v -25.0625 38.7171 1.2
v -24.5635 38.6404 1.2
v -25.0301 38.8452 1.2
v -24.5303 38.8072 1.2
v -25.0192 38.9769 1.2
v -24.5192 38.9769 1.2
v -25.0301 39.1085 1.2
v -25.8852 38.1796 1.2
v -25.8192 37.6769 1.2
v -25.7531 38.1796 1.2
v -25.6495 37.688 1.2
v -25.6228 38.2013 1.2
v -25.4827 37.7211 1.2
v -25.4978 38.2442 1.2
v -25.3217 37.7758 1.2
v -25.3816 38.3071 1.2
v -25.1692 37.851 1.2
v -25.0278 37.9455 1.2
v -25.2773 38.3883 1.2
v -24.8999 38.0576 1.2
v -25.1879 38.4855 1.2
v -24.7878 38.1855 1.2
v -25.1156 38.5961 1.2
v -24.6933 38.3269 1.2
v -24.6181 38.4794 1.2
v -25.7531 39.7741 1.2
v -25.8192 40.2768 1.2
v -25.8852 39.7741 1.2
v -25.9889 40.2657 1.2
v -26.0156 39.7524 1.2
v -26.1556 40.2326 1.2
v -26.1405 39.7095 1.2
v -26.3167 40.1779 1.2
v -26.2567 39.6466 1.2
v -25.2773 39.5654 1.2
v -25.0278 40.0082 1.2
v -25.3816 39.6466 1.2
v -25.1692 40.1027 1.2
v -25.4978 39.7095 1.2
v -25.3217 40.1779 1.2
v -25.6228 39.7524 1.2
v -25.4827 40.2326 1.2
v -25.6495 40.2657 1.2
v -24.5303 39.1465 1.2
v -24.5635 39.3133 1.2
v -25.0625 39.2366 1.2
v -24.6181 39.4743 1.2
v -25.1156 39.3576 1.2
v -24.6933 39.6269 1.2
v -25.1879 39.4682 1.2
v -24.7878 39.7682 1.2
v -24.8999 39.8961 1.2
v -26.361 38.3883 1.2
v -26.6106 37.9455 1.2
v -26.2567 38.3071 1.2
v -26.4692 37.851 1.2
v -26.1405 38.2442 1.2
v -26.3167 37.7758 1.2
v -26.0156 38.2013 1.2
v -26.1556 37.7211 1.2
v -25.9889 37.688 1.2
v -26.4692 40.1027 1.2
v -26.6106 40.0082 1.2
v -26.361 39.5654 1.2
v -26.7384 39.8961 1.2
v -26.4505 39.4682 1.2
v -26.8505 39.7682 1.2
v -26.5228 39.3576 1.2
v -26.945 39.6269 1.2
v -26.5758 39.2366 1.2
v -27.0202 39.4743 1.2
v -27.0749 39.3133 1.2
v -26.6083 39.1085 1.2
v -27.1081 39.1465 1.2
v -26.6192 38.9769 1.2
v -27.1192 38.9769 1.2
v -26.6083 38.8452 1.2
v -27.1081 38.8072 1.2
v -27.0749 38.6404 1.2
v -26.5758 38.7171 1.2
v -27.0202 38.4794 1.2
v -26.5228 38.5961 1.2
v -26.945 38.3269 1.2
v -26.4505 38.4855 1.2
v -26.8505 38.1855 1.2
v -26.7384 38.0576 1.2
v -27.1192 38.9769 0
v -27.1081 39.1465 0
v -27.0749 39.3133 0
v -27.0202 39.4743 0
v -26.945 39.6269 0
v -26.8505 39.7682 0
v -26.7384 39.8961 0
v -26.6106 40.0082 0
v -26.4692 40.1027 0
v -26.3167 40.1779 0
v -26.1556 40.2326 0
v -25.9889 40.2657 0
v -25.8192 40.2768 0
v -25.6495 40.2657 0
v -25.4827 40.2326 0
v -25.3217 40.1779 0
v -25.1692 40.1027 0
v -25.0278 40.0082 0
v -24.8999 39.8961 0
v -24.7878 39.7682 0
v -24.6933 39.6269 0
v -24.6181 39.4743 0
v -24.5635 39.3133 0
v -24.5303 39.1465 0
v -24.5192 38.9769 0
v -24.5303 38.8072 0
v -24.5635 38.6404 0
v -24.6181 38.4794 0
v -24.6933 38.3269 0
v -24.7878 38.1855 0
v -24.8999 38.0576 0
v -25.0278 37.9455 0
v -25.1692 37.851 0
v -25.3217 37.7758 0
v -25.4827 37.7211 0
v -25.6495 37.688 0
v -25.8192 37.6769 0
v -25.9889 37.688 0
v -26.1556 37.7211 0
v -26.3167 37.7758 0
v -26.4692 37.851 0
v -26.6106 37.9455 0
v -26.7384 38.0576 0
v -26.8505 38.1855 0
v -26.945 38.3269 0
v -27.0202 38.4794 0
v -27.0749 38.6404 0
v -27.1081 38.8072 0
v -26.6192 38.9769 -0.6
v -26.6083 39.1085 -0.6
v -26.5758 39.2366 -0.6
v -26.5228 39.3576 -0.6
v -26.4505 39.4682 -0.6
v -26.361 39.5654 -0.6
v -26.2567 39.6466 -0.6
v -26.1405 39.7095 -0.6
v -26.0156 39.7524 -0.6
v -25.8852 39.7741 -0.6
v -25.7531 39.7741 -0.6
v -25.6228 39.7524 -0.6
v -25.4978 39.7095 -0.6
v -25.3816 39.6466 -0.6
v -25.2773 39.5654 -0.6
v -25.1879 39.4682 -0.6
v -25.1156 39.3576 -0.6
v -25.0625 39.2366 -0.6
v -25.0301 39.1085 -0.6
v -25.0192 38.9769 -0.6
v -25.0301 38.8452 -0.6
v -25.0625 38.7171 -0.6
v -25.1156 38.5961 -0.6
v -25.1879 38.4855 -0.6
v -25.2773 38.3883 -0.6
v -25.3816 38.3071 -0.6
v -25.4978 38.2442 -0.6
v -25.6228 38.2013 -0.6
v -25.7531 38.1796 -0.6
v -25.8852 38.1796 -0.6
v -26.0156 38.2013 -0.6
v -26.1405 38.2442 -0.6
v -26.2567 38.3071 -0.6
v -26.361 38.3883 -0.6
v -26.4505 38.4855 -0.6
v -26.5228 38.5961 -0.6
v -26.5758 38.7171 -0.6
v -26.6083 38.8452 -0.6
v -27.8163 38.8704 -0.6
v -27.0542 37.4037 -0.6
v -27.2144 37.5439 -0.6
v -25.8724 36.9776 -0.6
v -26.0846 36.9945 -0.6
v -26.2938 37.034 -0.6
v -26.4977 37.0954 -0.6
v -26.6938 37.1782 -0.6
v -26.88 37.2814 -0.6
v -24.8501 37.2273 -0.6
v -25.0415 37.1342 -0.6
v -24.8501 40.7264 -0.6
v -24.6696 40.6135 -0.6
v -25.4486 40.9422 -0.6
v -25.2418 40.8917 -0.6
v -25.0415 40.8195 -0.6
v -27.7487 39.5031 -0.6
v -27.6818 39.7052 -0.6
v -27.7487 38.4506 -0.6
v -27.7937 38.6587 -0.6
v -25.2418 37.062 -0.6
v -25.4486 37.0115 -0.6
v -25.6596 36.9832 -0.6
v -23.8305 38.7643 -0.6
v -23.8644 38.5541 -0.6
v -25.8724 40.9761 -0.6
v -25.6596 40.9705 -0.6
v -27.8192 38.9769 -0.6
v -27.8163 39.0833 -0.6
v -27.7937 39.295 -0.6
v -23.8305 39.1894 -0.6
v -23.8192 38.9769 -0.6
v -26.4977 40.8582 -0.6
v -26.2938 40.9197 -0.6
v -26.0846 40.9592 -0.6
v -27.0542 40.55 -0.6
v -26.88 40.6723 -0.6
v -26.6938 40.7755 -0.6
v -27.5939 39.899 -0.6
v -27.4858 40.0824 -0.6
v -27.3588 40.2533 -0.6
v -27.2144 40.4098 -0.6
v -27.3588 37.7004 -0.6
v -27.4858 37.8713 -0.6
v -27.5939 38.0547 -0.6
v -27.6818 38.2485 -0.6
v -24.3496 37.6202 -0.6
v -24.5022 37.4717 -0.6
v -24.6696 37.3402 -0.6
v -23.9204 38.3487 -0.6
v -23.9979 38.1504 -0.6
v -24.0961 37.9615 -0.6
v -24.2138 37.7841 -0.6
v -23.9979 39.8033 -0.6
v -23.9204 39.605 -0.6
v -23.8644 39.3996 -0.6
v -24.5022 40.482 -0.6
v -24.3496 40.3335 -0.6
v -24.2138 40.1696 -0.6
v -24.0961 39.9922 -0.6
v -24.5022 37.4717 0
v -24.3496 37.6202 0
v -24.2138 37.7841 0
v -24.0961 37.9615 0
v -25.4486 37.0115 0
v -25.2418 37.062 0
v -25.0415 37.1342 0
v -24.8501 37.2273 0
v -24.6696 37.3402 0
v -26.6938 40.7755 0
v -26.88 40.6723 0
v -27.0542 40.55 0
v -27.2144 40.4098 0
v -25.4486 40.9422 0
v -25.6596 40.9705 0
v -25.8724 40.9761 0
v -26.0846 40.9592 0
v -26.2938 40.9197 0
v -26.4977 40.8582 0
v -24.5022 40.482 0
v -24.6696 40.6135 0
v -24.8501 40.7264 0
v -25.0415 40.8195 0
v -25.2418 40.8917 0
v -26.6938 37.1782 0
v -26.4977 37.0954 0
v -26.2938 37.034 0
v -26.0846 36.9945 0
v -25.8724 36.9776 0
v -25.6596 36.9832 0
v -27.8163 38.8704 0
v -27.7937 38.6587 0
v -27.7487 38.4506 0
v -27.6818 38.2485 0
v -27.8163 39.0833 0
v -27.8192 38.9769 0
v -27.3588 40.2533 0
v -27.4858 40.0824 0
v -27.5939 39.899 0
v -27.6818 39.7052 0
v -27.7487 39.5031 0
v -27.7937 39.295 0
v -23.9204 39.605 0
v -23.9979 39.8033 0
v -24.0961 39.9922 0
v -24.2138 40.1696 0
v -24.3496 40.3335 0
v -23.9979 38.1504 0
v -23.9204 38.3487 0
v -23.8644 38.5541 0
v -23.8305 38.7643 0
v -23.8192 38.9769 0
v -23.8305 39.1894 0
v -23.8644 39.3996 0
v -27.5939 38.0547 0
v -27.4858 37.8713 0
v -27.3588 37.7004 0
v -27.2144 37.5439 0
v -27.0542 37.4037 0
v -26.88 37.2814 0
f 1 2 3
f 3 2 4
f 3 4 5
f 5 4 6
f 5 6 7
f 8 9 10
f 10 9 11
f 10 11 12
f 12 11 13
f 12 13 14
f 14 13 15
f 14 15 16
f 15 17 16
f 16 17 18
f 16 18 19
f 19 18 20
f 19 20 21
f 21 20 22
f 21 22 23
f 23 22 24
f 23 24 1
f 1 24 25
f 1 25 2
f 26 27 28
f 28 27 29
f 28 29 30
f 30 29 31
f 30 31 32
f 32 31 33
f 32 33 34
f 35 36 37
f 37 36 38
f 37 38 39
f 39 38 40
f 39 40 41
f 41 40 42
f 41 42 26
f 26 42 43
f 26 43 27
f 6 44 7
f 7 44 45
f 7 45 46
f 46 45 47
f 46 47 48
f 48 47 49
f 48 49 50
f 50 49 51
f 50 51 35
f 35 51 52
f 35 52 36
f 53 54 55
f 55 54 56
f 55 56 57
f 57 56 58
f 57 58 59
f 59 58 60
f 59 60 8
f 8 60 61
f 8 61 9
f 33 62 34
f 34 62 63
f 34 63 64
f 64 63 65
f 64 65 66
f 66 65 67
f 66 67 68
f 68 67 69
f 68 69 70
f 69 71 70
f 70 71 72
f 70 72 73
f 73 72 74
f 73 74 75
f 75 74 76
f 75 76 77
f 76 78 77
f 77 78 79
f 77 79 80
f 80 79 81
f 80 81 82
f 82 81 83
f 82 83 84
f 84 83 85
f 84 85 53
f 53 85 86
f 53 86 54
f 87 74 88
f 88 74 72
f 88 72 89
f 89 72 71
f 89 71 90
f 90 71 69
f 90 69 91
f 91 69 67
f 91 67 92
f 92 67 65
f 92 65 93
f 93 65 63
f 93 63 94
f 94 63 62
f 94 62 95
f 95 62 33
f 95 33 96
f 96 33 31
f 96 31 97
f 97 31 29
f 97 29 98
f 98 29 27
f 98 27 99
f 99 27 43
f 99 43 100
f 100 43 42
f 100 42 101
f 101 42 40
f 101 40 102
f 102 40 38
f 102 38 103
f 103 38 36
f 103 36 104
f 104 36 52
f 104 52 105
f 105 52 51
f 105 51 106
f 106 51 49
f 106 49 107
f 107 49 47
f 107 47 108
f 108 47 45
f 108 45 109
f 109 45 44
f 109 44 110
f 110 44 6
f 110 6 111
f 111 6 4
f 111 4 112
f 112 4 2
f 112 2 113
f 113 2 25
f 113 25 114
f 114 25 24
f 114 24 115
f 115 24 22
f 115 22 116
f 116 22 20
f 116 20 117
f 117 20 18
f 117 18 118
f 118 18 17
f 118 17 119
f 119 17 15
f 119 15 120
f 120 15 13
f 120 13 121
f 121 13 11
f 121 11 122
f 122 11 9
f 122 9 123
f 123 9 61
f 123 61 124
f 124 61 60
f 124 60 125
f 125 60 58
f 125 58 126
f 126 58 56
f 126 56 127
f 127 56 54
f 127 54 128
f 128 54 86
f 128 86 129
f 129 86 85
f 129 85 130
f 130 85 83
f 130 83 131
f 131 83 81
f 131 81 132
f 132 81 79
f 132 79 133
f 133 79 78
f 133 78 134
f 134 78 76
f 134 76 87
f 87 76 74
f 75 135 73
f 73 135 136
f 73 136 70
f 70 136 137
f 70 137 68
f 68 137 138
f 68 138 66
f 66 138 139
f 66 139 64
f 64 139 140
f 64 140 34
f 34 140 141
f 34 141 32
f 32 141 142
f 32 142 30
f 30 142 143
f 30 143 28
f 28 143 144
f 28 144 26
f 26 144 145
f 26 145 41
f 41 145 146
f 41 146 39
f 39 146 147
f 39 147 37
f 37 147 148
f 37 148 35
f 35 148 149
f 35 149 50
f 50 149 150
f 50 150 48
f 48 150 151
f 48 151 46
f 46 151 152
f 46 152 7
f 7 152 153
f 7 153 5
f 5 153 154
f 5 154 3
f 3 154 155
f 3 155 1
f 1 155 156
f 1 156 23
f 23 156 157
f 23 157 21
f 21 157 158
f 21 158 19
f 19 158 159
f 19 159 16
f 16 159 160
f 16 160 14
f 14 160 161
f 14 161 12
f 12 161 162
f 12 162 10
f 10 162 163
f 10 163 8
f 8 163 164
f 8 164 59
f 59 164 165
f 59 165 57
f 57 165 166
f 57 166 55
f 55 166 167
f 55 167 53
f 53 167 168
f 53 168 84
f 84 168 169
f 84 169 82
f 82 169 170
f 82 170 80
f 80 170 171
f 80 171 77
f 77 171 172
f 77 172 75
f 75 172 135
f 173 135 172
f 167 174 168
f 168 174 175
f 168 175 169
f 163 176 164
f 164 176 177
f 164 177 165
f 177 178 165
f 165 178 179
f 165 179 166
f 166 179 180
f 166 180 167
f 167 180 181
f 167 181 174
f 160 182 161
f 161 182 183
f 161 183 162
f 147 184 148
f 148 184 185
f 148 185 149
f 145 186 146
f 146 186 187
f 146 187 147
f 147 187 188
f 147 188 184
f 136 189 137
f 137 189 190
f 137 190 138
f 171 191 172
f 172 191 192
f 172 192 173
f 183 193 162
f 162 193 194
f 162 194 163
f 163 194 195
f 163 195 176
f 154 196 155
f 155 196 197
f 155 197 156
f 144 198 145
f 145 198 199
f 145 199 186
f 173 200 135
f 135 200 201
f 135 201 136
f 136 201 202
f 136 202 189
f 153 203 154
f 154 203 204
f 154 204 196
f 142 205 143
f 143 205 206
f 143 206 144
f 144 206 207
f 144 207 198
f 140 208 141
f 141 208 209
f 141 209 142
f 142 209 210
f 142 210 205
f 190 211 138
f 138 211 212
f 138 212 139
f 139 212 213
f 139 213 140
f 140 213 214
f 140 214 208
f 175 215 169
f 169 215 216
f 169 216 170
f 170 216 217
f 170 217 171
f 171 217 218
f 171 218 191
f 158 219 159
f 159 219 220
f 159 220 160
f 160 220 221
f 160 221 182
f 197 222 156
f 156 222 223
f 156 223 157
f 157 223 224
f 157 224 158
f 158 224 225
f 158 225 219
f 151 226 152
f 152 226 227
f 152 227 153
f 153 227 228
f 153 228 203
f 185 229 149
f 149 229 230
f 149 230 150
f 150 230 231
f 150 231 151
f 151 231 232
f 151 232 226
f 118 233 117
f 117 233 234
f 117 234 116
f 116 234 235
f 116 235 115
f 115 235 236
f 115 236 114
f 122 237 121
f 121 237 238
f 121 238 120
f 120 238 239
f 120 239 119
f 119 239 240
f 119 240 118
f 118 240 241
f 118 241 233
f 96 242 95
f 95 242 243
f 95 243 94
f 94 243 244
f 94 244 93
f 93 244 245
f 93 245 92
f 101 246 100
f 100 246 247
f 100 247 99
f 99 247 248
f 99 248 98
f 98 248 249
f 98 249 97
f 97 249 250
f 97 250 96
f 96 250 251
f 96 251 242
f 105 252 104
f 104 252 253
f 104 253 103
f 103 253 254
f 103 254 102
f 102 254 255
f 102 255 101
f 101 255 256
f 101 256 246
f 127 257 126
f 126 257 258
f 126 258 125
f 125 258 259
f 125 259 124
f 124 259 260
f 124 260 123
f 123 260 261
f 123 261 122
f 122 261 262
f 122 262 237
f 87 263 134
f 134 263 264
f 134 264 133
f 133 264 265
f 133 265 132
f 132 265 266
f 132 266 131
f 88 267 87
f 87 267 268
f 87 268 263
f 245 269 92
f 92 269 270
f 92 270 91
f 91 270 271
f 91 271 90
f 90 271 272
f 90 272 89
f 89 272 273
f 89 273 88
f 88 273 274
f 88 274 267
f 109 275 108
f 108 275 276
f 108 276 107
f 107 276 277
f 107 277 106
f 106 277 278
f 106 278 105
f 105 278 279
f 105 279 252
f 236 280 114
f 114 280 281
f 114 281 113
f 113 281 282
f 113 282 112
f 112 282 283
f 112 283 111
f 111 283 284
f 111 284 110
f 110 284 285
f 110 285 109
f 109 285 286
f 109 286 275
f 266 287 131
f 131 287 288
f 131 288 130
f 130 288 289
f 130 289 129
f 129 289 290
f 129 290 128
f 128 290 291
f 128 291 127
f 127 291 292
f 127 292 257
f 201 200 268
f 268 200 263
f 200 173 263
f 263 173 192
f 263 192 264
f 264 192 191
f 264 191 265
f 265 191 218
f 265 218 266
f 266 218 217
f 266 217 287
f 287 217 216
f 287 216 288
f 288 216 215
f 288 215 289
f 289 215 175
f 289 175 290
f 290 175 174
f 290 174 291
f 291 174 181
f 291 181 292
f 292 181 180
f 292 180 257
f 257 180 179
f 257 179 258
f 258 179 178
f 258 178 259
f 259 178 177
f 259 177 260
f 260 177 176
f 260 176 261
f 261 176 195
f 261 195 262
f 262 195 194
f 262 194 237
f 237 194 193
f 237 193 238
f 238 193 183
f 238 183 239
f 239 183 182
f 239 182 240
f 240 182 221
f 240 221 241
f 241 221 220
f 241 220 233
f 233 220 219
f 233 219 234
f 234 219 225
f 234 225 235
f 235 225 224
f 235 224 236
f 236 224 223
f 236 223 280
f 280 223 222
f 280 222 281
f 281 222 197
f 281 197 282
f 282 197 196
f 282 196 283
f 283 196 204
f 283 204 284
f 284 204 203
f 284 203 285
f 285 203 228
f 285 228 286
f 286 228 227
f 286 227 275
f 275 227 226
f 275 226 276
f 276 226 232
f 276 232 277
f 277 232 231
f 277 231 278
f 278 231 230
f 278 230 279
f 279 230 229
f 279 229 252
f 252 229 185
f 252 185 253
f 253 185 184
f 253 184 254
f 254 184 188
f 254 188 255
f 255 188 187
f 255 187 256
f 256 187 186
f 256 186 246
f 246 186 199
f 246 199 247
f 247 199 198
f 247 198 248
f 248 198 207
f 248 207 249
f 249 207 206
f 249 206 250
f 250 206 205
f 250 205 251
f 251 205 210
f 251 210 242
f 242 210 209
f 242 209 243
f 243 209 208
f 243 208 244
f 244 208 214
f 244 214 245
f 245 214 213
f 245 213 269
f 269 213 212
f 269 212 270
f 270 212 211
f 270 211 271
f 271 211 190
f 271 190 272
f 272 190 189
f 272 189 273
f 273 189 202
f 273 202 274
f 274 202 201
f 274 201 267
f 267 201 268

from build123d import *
from build123d.topology import SkipClean

# Parameters (mm, degrees)
SKETCH1_R           = 1.3
SKETCH1_R_2         = 0.8
BOSS_EXTRUDE1_DEPTH = 1.2
BOSS_EXTRUDE2_START = 0.6
SKETCH2_R           = 2
SKETCH2_R_2         = 0.8
BOSS_EXTRUDE2_DEPTH = 0.6


with BuildPart() as part:
    # Sketch1 → Boss-Extrude1 (new body)
    with BuildSketch(Plane.XY):
        with Locations((-25.819173571, 38.976850261)):
            Circle(SKETCH1_R)
        with Locations((-25.819173571, 38.976850261)):
            Circle(SKETCH1_R_2, mode=Mode.SUBTRACT)
    extrude(amount=BOSS_EXTRUDE1_DEPTH)

    # Sketch2 → Boss-Extrude2 (add)
    with SkipClean():  # the faces are left unmerged after this step: merging them gives an invalid solid
        with BuildSketch(Plane(origin=(0, 0, 0), x_dir=(-1, 0, 0), z_dir=(0, 0, -1)).offset(BOSS_EXTRUDE2_START)):
            with Locations((25.819173571, 38.976850261)):
                Circle(SKETCH2_R)
            with Locations((25.819173571, 38.976850261)):
                Circle(SKETCH2_R_2, mode=Mode.SUBTRACT)
        extrude(amount=-BOSS_EXTRUDE2_DEPTH)


solid = part.part
